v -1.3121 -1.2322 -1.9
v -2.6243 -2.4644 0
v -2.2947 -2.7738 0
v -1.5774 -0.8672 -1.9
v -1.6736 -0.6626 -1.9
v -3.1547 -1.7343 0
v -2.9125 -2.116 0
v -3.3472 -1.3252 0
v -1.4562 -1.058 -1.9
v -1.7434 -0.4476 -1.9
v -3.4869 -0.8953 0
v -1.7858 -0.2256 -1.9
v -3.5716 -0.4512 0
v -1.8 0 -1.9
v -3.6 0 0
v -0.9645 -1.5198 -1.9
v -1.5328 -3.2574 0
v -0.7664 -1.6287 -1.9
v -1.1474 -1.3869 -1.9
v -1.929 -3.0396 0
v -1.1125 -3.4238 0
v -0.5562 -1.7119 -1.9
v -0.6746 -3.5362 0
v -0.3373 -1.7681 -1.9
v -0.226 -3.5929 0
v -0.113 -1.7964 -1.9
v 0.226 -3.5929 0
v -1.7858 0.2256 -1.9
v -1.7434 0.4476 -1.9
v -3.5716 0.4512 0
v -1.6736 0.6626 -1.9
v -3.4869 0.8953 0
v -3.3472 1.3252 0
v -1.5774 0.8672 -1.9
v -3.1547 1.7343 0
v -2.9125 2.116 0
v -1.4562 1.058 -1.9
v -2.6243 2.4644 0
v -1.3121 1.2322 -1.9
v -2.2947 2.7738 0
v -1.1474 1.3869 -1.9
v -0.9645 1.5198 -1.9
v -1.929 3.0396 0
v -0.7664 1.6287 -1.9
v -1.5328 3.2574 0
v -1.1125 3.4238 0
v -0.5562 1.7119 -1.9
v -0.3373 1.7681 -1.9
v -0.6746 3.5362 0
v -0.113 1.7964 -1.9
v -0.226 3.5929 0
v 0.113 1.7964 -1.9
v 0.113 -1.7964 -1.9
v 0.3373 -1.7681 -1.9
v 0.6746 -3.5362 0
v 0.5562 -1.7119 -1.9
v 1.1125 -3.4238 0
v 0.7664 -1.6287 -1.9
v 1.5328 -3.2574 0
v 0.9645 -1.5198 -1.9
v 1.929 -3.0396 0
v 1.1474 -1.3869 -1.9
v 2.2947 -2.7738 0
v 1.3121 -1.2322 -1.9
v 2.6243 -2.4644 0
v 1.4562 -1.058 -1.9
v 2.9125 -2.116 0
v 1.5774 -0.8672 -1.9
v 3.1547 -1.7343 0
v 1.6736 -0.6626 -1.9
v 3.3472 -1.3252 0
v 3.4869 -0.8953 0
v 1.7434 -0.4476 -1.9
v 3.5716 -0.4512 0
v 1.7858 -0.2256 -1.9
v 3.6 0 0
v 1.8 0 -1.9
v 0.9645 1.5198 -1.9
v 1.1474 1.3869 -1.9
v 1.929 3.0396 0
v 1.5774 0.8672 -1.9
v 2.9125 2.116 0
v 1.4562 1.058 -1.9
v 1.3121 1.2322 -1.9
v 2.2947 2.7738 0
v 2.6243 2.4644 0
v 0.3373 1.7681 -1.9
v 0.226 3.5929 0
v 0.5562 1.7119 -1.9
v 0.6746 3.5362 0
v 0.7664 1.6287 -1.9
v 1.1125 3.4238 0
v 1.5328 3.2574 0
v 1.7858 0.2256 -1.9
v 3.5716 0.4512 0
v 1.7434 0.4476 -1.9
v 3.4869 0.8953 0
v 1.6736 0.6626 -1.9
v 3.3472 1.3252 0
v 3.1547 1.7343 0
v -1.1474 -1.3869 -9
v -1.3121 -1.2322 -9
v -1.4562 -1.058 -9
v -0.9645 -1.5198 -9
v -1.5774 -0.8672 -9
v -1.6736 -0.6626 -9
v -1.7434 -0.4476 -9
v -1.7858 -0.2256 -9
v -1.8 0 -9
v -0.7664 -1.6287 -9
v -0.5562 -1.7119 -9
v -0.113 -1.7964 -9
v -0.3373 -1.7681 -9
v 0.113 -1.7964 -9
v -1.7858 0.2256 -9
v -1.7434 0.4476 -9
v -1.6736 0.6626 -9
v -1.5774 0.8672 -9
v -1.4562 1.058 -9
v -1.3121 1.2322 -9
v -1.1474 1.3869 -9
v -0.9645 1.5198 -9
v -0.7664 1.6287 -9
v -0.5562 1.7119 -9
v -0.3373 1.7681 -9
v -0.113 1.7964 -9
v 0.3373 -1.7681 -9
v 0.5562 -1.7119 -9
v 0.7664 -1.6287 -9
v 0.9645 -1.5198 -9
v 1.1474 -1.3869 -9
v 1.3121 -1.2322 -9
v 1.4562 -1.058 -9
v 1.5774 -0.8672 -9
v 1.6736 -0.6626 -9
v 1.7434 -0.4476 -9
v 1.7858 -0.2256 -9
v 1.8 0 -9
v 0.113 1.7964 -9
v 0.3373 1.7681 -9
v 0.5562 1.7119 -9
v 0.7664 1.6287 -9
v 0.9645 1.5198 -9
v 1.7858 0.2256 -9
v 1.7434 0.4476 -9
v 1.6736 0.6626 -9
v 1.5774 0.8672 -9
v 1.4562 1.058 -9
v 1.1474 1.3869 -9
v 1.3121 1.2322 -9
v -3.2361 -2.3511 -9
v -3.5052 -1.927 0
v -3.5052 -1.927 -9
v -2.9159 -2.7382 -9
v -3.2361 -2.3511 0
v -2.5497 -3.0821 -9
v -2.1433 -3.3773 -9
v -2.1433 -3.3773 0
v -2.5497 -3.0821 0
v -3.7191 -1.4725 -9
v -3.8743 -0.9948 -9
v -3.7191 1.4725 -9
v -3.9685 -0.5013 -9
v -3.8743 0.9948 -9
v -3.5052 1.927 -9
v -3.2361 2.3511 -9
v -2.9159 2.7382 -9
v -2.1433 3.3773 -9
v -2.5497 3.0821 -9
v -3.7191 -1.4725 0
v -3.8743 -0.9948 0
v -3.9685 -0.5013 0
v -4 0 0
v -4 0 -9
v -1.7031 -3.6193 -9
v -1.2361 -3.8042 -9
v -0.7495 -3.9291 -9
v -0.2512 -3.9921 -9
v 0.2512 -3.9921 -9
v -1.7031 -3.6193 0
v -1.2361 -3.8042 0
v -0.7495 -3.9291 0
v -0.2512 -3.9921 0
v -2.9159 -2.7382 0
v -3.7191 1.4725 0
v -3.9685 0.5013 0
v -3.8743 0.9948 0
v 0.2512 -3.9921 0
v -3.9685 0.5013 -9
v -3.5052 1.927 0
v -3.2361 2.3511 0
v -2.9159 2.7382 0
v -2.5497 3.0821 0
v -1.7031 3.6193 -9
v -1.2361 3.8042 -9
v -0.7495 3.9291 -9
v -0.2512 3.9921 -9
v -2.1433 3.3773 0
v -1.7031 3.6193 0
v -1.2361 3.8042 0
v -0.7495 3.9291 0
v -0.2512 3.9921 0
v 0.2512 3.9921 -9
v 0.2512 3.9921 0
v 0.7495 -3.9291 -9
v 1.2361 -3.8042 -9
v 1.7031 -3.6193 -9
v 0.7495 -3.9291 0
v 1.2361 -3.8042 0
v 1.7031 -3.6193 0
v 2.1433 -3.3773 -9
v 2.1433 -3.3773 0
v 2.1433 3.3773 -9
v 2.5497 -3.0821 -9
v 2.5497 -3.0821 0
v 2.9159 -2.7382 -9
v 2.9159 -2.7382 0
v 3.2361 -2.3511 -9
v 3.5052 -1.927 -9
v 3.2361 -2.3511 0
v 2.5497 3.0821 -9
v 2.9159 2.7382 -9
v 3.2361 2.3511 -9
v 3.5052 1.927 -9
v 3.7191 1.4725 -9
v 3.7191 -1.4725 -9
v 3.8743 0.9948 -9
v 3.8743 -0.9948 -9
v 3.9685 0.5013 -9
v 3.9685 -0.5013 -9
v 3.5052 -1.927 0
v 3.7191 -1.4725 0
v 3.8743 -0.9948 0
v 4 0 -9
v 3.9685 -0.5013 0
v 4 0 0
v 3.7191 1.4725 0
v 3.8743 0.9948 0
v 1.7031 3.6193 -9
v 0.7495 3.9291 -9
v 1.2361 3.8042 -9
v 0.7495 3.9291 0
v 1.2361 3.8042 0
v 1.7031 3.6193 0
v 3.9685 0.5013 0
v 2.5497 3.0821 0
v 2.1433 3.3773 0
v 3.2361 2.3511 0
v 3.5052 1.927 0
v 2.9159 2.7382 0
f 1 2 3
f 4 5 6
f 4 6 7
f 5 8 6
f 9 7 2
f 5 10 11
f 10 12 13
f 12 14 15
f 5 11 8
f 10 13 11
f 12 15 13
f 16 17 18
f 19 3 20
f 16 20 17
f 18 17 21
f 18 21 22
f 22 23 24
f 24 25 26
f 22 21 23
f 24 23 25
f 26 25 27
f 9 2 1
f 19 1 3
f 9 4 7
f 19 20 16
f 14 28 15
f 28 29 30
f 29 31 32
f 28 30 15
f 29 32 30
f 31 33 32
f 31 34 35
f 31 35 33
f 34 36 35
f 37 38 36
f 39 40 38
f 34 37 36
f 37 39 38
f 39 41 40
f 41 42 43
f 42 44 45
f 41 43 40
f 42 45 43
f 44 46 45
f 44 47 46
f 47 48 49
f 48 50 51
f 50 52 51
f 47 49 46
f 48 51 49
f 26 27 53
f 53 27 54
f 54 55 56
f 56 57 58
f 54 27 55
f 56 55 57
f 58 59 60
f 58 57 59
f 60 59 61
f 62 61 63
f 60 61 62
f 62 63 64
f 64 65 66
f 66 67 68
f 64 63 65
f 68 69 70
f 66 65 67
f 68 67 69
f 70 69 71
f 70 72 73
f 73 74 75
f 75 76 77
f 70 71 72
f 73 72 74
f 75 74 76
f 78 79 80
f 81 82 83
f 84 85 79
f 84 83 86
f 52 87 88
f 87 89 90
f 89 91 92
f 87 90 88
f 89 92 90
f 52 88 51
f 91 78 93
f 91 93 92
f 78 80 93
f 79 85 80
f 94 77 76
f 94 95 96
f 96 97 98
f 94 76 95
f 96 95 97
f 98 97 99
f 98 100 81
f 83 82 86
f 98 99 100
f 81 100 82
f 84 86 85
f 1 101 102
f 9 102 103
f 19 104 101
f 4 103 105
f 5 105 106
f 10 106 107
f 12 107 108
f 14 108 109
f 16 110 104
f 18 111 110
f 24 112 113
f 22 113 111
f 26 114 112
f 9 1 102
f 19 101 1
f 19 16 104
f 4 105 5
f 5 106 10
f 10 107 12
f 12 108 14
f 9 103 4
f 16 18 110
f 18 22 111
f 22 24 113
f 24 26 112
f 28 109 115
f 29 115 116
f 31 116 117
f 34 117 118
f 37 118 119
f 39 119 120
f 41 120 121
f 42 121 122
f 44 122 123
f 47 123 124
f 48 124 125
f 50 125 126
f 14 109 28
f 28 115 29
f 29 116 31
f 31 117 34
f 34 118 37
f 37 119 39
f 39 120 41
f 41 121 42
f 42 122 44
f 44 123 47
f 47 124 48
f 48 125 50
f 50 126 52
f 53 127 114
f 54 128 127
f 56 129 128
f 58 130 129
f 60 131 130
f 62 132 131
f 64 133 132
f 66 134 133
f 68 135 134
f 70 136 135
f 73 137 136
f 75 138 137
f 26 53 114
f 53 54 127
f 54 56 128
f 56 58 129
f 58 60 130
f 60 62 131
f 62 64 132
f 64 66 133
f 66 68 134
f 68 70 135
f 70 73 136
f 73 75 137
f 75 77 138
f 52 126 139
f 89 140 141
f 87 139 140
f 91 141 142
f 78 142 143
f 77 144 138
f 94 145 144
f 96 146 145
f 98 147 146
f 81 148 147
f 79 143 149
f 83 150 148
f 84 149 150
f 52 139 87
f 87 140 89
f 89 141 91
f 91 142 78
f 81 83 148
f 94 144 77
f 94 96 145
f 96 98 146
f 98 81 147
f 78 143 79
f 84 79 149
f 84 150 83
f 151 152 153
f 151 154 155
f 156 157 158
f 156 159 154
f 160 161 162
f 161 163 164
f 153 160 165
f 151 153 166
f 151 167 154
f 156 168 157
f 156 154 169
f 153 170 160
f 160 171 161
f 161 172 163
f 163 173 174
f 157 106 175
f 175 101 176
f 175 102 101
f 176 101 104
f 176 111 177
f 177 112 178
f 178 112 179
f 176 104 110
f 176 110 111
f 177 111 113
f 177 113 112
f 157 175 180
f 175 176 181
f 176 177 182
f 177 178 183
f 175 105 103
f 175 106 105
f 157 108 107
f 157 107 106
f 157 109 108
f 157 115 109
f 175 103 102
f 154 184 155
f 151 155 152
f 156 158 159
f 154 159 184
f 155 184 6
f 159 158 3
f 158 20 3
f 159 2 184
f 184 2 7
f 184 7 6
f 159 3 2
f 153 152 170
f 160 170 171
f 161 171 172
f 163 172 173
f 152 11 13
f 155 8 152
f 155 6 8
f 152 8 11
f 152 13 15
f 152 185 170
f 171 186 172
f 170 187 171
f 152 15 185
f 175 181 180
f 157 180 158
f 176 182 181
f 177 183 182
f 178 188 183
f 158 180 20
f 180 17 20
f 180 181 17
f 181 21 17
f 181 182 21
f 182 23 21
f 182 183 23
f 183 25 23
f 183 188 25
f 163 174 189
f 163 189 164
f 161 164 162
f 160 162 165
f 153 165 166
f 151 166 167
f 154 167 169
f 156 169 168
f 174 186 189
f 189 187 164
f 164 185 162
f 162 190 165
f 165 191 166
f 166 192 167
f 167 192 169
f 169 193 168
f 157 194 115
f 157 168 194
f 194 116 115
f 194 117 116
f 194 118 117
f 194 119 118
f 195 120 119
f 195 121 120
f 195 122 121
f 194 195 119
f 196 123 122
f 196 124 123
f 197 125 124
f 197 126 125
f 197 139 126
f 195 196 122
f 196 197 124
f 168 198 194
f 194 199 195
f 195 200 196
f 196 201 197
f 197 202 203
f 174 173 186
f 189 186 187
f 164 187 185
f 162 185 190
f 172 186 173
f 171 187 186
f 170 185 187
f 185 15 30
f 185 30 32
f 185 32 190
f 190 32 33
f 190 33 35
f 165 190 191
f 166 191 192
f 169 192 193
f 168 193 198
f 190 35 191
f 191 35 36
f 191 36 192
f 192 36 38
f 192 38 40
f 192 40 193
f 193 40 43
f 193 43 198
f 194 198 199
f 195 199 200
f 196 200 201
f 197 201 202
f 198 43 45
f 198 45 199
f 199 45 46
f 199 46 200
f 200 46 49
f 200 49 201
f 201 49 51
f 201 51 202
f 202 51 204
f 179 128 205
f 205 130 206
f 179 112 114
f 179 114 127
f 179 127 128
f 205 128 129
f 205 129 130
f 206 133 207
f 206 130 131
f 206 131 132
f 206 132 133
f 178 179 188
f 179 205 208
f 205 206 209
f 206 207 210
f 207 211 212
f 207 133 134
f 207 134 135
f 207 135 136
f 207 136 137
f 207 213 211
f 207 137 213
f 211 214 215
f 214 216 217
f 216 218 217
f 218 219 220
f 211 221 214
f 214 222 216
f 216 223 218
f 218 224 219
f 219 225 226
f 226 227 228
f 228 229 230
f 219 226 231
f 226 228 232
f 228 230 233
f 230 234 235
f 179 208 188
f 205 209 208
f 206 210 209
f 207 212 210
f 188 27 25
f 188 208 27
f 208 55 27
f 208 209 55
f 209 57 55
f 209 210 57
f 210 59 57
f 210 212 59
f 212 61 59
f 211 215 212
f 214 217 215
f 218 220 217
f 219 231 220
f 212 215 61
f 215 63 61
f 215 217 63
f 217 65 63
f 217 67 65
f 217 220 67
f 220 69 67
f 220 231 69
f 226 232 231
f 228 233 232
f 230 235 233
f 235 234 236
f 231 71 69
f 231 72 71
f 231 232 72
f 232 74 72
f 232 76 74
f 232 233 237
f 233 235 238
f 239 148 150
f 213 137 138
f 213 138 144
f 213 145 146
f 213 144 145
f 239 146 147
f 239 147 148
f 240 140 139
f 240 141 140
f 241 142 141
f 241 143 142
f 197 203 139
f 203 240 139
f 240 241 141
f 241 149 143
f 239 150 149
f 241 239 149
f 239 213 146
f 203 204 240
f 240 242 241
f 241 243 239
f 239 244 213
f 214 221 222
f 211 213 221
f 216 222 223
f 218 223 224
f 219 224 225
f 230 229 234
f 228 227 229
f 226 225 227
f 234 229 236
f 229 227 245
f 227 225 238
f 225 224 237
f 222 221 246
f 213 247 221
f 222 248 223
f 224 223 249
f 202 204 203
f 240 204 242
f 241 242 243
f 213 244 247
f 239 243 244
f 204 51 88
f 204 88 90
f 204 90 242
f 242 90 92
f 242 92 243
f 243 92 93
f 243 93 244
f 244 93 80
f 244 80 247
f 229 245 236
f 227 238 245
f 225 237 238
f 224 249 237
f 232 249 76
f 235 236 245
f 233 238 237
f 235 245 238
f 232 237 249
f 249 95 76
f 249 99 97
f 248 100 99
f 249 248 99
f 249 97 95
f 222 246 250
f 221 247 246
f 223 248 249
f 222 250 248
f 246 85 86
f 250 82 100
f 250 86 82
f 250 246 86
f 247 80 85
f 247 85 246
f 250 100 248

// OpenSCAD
$fn = 50;

difference() {
	union() {
		translate(v = [0, 0, -9.0]) {
			cylinder(h = 9, r = 4.0);
		}
	}
	union() {
		translate(v = [0, 0, 0]) {
			rotate(a = [0, 0, 0]) {
				difference() {
					union() {
						translate(v = [0, 0, -12.0]) {
							cylinder(h = 12, r = 1.5);
						}
						translate(v = [0, 0, -1.9]) {
							cylinder(h = 1.9, r1 = 1.8, r2 = 3.6);
						}
						translate(v = [0, 0, -12.0]) {
							cylinder(h = 12, r = 1.8);
						}
						translate(v = [0, 0, -12.0]) {
							cylinder(h = 12, r = 1.5);
						}
					}
					union();
				}
			}
		}
	}
}
